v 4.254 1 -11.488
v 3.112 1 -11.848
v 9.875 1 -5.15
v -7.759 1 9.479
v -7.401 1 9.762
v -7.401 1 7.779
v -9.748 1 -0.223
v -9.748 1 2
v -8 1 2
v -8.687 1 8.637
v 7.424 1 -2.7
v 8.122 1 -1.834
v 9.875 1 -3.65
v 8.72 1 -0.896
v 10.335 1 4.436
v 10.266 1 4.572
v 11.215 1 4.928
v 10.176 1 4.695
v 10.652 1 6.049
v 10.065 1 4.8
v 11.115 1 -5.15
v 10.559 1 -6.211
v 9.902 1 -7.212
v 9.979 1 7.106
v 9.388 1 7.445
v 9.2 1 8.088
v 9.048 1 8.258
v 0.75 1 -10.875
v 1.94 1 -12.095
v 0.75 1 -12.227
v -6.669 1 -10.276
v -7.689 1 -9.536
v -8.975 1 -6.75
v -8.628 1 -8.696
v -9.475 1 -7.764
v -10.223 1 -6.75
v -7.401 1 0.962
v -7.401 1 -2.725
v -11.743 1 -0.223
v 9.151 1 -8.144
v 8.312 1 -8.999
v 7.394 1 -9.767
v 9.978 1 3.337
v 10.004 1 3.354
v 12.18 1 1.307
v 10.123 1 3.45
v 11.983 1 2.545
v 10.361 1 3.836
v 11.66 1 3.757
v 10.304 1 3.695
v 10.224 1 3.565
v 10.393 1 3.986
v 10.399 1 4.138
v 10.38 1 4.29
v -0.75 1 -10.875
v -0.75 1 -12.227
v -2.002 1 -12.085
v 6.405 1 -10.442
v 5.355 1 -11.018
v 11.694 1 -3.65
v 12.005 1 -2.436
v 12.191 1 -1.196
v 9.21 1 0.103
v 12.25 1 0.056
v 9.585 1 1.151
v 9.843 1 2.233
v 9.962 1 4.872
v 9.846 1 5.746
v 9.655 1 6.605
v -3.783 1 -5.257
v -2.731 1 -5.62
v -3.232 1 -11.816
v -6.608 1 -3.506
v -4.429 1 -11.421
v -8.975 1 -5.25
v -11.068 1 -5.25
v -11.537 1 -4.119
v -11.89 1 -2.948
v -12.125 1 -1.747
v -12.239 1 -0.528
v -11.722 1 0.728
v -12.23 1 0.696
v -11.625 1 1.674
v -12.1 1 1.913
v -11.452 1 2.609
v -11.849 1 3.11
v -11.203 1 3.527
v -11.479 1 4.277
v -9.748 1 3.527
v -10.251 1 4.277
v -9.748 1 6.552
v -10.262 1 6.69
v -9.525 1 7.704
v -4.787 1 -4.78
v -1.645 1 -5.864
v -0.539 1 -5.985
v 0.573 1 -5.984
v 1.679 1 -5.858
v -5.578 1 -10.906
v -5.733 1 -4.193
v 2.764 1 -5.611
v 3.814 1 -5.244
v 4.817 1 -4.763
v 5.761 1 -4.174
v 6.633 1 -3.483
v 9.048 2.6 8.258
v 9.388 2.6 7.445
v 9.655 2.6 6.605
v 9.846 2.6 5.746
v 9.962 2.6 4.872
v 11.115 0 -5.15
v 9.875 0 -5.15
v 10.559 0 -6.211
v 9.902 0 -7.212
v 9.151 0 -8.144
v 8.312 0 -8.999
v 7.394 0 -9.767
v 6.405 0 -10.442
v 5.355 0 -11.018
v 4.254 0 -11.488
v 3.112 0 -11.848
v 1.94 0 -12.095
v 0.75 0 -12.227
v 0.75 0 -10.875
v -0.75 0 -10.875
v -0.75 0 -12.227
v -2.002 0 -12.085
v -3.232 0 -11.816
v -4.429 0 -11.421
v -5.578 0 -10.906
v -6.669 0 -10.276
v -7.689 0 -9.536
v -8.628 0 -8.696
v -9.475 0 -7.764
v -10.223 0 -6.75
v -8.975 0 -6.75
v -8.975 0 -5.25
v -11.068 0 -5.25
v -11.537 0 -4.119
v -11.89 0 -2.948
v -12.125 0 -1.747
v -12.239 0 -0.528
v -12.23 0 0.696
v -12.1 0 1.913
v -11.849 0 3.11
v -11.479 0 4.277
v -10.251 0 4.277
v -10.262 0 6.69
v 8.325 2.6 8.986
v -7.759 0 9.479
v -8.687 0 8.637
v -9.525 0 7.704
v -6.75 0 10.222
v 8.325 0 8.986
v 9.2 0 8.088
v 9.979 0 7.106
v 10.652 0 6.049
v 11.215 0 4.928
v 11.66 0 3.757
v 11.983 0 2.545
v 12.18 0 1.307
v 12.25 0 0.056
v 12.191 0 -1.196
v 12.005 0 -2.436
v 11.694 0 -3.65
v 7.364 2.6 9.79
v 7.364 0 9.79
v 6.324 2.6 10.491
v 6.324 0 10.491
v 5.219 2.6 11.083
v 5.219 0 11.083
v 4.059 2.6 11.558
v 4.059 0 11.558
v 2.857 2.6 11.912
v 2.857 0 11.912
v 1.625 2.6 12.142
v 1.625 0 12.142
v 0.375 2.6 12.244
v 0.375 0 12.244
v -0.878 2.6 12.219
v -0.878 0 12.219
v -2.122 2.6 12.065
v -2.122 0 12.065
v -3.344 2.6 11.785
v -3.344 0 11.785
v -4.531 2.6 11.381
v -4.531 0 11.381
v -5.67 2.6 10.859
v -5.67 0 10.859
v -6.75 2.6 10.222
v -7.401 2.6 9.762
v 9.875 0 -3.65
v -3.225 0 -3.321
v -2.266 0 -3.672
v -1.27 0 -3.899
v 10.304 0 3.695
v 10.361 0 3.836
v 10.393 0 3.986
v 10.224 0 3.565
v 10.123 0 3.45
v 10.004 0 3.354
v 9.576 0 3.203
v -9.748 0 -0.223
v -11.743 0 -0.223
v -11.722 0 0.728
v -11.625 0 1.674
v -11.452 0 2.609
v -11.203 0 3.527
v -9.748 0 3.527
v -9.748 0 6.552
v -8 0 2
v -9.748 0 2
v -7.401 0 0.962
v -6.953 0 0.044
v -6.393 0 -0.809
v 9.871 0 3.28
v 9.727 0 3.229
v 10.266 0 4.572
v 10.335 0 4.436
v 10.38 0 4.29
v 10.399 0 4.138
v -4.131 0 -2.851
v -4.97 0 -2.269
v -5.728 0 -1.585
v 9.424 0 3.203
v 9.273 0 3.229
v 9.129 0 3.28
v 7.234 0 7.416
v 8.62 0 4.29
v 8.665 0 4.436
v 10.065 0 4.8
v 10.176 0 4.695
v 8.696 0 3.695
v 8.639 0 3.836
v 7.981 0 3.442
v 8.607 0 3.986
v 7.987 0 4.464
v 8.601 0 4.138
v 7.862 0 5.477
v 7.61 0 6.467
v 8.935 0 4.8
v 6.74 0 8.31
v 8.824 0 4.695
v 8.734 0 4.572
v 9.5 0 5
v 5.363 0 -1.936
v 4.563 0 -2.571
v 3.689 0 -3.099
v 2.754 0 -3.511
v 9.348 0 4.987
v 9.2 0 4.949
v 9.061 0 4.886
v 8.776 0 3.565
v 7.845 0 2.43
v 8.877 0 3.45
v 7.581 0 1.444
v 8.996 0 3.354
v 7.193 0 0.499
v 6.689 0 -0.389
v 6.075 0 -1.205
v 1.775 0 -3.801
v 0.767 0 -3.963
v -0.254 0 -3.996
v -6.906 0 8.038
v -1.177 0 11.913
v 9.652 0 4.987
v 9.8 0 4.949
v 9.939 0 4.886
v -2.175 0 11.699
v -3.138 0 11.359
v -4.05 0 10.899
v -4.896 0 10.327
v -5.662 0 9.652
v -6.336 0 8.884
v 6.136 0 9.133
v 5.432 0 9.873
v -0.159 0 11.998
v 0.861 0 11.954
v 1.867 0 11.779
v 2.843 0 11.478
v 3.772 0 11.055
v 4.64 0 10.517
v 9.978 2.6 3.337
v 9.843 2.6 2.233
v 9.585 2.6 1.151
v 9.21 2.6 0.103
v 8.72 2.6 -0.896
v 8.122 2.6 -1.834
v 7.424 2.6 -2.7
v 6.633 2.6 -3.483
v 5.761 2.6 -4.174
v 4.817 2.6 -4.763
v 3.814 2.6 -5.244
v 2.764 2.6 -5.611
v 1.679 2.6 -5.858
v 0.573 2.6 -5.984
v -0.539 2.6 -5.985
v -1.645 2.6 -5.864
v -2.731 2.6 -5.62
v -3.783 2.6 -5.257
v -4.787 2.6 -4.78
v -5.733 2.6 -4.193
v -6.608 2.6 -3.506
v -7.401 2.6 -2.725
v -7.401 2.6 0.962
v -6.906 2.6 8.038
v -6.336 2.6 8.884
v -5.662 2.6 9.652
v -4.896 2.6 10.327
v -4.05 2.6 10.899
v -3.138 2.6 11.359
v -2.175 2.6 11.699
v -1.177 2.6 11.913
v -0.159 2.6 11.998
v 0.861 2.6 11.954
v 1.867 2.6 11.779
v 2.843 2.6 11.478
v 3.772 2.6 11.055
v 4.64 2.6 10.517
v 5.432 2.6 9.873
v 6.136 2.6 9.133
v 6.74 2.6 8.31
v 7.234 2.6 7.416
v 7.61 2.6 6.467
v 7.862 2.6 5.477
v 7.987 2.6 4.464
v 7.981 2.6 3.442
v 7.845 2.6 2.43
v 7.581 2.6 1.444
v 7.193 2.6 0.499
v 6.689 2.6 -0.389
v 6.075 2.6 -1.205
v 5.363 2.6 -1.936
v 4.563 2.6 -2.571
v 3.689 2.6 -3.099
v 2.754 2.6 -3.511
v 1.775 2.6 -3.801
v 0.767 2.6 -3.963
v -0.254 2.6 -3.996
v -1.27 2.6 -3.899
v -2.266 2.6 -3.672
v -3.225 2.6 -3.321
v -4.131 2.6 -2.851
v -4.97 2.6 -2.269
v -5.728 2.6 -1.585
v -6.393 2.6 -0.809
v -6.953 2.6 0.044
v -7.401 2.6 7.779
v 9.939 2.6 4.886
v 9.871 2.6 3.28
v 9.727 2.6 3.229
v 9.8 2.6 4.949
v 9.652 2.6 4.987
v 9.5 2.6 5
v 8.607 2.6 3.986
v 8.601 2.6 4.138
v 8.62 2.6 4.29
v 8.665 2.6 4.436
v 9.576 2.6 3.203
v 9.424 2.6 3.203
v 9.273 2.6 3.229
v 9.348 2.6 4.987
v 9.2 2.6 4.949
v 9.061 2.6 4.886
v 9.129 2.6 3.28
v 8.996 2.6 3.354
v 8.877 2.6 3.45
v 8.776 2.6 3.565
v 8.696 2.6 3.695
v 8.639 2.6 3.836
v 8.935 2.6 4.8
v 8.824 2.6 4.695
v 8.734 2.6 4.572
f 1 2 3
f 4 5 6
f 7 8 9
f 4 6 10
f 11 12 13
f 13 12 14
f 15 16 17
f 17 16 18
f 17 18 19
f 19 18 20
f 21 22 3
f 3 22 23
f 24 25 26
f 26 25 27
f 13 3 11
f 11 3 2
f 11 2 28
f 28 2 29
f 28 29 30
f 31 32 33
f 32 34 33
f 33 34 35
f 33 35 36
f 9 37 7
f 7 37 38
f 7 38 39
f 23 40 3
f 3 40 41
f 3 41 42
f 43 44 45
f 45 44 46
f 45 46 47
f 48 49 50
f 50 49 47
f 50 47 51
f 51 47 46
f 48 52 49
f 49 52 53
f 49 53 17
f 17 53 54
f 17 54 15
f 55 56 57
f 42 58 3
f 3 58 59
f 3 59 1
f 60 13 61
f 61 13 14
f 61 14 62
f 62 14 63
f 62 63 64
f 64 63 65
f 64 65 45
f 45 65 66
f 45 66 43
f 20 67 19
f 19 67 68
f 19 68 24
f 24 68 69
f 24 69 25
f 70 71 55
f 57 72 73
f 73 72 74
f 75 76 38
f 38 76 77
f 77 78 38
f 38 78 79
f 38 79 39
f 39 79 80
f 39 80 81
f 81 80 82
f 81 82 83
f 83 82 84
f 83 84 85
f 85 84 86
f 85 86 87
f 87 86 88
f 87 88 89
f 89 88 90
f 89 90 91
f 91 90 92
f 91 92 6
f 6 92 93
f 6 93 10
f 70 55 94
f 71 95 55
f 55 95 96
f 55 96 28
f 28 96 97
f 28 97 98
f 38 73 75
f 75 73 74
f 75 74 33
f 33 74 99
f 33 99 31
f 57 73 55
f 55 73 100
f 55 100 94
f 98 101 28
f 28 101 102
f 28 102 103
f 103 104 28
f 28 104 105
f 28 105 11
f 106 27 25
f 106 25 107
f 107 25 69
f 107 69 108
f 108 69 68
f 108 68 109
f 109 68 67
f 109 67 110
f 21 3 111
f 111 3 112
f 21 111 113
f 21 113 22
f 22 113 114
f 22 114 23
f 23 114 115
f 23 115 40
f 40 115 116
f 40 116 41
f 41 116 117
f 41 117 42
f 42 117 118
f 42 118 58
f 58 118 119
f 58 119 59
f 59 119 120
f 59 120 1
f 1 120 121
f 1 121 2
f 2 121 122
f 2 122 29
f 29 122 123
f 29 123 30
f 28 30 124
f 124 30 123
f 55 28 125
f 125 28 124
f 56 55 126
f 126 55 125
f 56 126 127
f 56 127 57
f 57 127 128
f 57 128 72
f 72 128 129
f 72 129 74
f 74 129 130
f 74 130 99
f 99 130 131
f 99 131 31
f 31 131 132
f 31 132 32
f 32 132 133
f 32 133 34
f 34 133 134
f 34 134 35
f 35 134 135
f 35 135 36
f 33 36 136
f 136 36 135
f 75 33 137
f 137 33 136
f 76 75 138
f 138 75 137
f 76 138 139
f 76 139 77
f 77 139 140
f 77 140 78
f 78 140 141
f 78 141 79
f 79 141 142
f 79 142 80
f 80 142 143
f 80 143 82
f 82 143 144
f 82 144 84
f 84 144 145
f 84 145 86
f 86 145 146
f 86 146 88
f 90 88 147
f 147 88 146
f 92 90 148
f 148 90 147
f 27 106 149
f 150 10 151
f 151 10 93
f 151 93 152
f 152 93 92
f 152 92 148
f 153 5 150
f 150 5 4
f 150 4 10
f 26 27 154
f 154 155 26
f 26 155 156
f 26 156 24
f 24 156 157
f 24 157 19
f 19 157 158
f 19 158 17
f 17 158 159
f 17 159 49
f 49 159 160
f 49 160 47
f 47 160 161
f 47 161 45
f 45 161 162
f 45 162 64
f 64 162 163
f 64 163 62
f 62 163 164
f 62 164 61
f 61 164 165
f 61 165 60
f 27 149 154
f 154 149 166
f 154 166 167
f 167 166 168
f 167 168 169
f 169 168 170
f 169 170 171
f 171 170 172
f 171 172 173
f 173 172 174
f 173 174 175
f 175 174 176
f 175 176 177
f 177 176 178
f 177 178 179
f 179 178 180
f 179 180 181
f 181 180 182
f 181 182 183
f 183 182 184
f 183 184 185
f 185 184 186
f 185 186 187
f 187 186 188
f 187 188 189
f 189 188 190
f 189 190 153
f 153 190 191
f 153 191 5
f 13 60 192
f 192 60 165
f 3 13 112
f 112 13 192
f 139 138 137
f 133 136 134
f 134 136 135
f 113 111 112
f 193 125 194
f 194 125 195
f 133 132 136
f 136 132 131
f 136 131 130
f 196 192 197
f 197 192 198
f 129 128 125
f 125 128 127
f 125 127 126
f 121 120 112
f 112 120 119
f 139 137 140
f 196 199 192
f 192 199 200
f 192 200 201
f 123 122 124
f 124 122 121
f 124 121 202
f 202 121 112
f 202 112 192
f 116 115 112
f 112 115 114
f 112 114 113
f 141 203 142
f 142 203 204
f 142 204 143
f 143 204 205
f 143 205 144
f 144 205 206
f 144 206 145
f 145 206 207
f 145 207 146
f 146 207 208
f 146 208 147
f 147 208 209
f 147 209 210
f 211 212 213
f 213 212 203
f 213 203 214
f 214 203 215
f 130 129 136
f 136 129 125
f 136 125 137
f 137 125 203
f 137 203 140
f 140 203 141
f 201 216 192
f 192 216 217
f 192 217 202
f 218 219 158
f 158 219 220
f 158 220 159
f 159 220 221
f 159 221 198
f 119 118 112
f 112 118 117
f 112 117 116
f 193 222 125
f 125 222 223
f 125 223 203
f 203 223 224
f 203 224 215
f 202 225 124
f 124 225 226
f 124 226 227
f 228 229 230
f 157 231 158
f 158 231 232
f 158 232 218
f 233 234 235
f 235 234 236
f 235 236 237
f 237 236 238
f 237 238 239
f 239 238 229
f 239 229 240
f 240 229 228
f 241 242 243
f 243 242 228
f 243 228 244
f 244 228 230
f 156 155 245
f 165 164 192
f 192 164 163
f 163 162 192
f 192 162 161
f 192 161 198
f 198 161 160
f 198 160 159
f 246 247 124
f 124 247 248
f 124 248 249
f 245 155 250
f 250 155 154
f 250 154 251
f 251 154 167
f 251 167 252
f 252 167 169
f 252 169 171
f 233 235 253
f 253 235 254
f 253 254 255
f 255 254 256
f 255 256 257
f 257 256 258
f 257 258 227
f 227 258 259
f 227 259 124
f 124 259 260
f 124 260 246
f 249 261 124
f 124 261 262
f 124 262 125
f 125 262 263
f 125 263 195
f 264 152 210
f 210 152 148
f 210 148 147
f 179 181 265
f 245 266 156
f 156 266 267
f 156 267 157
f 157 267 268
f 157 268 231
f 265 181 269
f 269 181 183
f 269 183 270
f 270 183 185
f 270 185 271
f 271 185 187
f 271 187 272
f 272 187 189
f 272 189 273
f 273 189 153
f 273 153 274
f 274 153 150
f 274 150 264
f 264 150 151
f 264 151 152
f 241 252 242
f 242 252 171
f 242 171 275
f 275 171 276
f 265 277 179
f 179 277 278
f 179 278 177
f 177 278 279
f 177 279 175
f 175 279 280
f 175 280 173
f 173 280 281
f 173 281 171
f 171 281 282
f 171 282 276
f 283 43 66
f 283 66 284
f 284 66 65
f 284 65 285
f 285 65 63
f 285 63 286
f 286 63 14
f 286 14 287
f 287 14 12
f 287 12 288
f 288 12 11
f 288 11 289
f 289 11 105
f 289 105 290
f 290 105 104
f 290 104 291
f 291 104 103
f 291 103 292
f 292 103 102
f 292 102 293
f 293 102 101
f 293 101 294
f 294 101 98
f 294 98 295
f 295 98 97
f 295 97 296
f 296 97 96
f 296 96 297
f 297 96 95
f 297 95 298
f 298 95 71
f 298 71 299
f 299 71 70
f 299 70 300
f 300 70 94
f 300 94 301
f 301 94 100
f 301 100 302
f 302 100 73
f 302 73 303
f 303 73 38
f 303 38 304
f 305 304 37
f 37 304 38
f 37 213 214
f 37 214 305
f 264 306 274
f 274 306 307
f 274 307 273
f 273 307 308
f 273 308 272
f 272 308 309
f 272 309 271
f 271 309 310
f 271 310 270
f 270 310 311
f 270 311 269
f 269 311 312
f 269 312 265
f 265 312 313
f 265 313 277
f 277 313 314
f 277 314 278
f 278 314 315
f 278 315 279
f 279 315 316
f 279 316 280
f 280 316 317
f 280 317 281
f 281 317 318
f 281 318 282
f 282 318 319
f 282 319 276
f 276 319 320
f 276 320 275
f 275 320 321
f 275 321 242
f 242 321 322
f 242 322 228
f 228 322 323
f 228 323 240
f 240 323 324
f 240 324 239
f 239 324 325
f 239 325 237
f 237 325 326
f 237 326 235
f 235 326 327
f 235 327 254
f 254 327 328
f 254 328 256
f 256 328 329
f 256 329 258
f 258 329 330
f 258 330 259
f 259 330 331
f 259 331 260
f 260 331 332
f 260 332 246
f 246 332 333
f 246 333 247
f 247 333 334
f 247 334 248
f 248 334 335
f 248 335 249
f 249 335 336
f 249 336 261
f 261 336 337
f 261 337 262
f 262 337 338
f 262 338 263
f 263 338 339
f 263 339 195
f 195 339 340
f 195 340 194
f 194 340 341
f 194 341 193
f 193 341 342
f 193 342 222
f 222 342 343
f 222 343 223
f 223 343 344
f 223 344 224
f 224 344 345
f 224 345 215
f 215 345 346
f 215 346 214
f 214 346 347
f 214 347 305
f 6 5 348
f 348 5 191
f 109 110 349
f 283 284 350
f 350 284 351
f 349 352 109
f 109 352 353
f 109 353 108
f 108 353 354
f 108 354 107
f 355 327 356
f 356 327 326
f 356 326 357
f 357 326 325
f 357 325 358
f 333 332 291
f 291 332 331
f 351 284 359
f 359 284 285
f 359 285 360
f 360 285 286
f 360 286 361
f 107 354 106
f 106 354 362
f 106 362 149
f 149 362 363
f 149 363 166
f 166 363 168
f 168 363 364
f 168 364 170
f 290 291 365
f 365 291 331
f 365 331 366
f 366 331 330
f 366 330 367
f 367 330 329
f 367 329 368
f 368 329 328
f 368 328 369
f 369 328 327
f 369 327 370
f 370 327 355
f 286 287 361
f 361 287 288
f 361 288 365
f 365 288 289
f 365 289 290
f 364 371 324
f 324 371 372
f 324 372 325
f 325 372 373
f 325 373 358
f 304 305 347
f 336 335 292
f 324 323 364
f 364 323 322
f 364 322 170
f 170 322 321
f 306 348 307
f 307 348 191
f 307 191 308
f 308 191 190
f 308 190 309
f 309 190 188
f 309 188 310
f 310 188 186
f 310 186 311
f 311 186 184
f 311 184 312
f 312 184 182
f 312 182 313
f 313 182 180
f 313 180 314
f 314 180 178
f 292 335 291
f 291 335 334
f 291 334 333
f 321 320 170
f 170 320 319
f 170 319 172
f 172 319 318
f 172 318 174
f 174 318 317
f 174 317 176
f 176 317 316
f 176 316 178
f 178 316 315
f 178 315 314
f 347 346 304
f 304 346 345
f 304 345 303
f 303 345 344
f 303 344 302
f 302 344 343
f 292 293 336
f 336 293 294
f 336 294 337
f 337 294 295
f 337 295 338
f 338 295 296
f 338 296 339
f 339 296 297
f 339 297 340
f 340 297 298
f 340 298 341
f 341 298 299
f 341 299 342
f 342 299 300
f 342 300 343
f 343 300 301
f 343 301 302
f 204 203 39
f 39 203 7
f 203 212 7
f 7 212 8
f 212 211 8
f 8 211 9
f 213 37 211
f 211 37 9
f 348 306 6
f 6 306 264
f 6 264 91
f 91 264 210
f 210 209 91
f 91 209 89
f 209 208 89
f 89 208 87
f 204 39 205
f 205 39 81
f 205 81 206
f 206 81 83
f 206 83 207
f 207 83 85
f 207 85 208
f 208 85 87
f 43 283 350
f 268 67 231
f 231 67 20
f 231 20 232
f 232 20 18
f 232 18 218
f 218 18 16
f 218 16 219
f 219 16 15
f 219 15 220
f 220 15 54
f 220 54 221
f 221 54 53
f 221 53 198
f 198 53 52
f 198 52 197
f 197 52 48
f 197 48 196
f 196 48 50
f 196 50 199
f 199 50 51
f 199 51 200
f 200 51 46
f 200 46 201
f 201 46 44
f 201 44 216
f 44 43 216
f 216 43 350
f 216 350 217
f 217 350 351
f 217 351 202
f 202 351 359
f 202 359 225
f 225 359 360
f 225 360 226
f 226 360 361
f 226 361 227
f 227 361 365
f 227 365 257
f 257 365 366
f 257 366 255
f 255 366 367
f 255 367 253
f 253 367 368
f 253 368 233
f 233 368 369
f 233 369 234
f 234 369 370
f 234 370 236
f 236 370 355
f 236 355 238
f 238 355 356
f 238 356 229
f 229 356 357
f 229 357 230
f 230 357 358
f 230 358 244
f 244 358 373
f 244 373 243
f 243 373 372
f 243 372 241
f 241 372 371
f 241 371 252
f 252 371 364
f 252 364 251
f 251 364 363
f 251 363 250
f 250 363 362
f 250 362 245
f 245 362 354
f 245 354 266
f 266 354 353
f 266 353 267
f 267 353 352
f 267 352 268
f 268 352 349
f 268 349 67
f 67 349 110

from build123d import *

# Parameters (mm, degrees)
BOSS_EXTRUDE1_DEPTH     = 1
BOSS_EXTRUDE2_DEPTH     = 1.6
CUT_EXTRUDE1_DEPTH      = 18.39784469409933
CUT_EXTRUDE1_DEPTH_BACK = 18.39784469409933
SKETCH2_R               = 0.9000000000000004


with BuildPart() as part:
    # Sketch1 → Boss-Extrude1 (new body)
    with BuildSketch(Plane(origin=(0, 0, 0), x_dir=(1, 0, 0), z_dir=(0, 1, 0))):
        with BuildLine():
            Line((-0.75, 10.875000000000002), (-0.75, 12.227019260637483))
            ThreePointArc((-0.7500000000000002, 12.227019260637485), (-6.131762108207349, 10.604904216840085), (-10.22252415013044, 6.750000000000002))
            Line((-10.222524150130438, 6.750000000000001), (-8.975, 6.750000000000001))
            Line((-8.975, 6.750000000000001), (-8.975, 5.249999999999999))
            Line((-8.975, 5.249999999999999), (-11.067971810589329, 5.249999999999999))
            ThreePointArc((-11.06797181058933, 5.25), (-12.238613585290821, 0.528050669855673), (-11.479034225714315, -4.277180525168357))
            Line((-11.479034225714315, -4.277180525168356), (-10.251454558987772, -4.277180525168356))
            Line((-10.251454558987772, -4.277180525168356), (-10.261976170759779, -6.689868838083338))
            ThreePointArc((-10.26197617075978, -6.68986883808334), (5.219252819608776, -11.082504229866366), (11.693587986584786, 3.65))
            Line((11.693587986584786, 3.6499999999999995), (9.875, 3.6499999999999995))
            Line((9.875, 3.6499999999999995), (9.875, 5.1499999999999995))
            Line((9.875, 5.1499999999999995), (11.114854924829205, 5.1499999999999995))
            ThreePointArc((11.114854924829206, 5.15), (6.9075861196708574, 10.116706677537433), (0.7500000000000135, 12.227019260637483))
            Line((0.7500000000000137, 12.227019260637483), (0.7500000000000137, 10.875000000000002))
            Line((0.7500000000000137, 10.875000000000002), (-0.7500000000000001, 10.875000000000002))
        make_face()
    extrude(amount=BOSS_EXTRUDE1_DEPTH)

    # Sketch3 → Boss-Extrude2 (add)
    with BuildSketch(Plane(origin=(0, 1, 0), x_dir=(1, 0, 0), z_dir=(0, 1, 0))):
        with BuildLine():
            Line((-7.4007200688618315, 2.7252763855729887), (-7.4007200688618315, -0.9620167113123034))
            ThreePointArc((-7.40072006886183, -0.9620167113123008), (1.5482634545040064, 3.8487502365311173), (8, -4.0000000000000036))
            ThreePointArc((8, -4.000000000000005), (1.5482634545039802, -11.84875023653113), (-7.400720068861849, -7.037983288687658))
            Line((-7.400720068861849, -7.037983288687658), (-7.400720068861849, -9.761754066884983))
            ThreePointArc((-7.400720068861847, -9.761754066884983), (1.1153735220053107, -12.199116439579116), (9.048261308939445, -8.257812499999588))
            ThreePointArc((9.048261308939306, -8.257812499999497), (9.759165258601607, -6.181442975487434), (10, -4.000000000000006))
            ThreePointArc((10, -4.0000000000000036), (3.6050519629668107, 5.327572049805301), (-7.400720068861829, 2.7252763855729913))
        make_face()
    extrude(amount=BOSS_EXTRUDE2_DEPTH)

    # Sketch2 → Cut-Extrude1 (cut, two sides: drawn at the far end of the back side and taken through both)
    with BuildSketch(Plane(origin=(0, 1, 0), x_dir=(1, 0, 0), z_dir=(0, 1, 0)).offset(-CUT_EXTRUDE1_DEPTH_BACK)):
        with BuildLine():
            Line((-8.000000000000002, -2.0000000000000036), (-9.747973362219389, -2.0000000000000036))
            Line((-9.747973362219389, -2.0000000000000036), (-9.747973362219389, 0.22281947483164366))
            Line((-9.747973362219389, 0.22281947483164363), (-11.742905111754867, 0.22281947483164344))
            ThreePointArc((-11.742905111754867, 0.22281947483164347), (-11.62509617448331, -1.6740991356715729), (-11.202877600193457, -3.5271805251683066))
            Line((-11.202877600193467, -3.5271805251683563), (-9.747973362219389, -3.5271805251683563))
            Line((-9.747973362219389, -3.5271805251683563), (-9.747973362219389, -6.551525342353796))
            Line((-9.747973362219389, -6.551525342353796), (-6.906384460645114, -8.037555409125643))
            ThreePointArc((-6.906384460645114, -8.037555409125643), (7.980546470676243, -3.4424356275935972), (-7.400720068861833, -0.9620167113123106))
            Line((-7.400720068861836, -0.9620167113123133), (-8.000000000000002, -2.0000000000000036))
        make_face()
        with Locations(Location((9.5, -4.1, 0), (0, 0, 270))):
            Circle(SKETCH2_R)
    extrude(amount=CUT_EXTRUDE1_DEPTH + CUT_EXTRUDE1_DEPTH_BACK, mode=Mode.SUBTRACT)


solid = part.part
